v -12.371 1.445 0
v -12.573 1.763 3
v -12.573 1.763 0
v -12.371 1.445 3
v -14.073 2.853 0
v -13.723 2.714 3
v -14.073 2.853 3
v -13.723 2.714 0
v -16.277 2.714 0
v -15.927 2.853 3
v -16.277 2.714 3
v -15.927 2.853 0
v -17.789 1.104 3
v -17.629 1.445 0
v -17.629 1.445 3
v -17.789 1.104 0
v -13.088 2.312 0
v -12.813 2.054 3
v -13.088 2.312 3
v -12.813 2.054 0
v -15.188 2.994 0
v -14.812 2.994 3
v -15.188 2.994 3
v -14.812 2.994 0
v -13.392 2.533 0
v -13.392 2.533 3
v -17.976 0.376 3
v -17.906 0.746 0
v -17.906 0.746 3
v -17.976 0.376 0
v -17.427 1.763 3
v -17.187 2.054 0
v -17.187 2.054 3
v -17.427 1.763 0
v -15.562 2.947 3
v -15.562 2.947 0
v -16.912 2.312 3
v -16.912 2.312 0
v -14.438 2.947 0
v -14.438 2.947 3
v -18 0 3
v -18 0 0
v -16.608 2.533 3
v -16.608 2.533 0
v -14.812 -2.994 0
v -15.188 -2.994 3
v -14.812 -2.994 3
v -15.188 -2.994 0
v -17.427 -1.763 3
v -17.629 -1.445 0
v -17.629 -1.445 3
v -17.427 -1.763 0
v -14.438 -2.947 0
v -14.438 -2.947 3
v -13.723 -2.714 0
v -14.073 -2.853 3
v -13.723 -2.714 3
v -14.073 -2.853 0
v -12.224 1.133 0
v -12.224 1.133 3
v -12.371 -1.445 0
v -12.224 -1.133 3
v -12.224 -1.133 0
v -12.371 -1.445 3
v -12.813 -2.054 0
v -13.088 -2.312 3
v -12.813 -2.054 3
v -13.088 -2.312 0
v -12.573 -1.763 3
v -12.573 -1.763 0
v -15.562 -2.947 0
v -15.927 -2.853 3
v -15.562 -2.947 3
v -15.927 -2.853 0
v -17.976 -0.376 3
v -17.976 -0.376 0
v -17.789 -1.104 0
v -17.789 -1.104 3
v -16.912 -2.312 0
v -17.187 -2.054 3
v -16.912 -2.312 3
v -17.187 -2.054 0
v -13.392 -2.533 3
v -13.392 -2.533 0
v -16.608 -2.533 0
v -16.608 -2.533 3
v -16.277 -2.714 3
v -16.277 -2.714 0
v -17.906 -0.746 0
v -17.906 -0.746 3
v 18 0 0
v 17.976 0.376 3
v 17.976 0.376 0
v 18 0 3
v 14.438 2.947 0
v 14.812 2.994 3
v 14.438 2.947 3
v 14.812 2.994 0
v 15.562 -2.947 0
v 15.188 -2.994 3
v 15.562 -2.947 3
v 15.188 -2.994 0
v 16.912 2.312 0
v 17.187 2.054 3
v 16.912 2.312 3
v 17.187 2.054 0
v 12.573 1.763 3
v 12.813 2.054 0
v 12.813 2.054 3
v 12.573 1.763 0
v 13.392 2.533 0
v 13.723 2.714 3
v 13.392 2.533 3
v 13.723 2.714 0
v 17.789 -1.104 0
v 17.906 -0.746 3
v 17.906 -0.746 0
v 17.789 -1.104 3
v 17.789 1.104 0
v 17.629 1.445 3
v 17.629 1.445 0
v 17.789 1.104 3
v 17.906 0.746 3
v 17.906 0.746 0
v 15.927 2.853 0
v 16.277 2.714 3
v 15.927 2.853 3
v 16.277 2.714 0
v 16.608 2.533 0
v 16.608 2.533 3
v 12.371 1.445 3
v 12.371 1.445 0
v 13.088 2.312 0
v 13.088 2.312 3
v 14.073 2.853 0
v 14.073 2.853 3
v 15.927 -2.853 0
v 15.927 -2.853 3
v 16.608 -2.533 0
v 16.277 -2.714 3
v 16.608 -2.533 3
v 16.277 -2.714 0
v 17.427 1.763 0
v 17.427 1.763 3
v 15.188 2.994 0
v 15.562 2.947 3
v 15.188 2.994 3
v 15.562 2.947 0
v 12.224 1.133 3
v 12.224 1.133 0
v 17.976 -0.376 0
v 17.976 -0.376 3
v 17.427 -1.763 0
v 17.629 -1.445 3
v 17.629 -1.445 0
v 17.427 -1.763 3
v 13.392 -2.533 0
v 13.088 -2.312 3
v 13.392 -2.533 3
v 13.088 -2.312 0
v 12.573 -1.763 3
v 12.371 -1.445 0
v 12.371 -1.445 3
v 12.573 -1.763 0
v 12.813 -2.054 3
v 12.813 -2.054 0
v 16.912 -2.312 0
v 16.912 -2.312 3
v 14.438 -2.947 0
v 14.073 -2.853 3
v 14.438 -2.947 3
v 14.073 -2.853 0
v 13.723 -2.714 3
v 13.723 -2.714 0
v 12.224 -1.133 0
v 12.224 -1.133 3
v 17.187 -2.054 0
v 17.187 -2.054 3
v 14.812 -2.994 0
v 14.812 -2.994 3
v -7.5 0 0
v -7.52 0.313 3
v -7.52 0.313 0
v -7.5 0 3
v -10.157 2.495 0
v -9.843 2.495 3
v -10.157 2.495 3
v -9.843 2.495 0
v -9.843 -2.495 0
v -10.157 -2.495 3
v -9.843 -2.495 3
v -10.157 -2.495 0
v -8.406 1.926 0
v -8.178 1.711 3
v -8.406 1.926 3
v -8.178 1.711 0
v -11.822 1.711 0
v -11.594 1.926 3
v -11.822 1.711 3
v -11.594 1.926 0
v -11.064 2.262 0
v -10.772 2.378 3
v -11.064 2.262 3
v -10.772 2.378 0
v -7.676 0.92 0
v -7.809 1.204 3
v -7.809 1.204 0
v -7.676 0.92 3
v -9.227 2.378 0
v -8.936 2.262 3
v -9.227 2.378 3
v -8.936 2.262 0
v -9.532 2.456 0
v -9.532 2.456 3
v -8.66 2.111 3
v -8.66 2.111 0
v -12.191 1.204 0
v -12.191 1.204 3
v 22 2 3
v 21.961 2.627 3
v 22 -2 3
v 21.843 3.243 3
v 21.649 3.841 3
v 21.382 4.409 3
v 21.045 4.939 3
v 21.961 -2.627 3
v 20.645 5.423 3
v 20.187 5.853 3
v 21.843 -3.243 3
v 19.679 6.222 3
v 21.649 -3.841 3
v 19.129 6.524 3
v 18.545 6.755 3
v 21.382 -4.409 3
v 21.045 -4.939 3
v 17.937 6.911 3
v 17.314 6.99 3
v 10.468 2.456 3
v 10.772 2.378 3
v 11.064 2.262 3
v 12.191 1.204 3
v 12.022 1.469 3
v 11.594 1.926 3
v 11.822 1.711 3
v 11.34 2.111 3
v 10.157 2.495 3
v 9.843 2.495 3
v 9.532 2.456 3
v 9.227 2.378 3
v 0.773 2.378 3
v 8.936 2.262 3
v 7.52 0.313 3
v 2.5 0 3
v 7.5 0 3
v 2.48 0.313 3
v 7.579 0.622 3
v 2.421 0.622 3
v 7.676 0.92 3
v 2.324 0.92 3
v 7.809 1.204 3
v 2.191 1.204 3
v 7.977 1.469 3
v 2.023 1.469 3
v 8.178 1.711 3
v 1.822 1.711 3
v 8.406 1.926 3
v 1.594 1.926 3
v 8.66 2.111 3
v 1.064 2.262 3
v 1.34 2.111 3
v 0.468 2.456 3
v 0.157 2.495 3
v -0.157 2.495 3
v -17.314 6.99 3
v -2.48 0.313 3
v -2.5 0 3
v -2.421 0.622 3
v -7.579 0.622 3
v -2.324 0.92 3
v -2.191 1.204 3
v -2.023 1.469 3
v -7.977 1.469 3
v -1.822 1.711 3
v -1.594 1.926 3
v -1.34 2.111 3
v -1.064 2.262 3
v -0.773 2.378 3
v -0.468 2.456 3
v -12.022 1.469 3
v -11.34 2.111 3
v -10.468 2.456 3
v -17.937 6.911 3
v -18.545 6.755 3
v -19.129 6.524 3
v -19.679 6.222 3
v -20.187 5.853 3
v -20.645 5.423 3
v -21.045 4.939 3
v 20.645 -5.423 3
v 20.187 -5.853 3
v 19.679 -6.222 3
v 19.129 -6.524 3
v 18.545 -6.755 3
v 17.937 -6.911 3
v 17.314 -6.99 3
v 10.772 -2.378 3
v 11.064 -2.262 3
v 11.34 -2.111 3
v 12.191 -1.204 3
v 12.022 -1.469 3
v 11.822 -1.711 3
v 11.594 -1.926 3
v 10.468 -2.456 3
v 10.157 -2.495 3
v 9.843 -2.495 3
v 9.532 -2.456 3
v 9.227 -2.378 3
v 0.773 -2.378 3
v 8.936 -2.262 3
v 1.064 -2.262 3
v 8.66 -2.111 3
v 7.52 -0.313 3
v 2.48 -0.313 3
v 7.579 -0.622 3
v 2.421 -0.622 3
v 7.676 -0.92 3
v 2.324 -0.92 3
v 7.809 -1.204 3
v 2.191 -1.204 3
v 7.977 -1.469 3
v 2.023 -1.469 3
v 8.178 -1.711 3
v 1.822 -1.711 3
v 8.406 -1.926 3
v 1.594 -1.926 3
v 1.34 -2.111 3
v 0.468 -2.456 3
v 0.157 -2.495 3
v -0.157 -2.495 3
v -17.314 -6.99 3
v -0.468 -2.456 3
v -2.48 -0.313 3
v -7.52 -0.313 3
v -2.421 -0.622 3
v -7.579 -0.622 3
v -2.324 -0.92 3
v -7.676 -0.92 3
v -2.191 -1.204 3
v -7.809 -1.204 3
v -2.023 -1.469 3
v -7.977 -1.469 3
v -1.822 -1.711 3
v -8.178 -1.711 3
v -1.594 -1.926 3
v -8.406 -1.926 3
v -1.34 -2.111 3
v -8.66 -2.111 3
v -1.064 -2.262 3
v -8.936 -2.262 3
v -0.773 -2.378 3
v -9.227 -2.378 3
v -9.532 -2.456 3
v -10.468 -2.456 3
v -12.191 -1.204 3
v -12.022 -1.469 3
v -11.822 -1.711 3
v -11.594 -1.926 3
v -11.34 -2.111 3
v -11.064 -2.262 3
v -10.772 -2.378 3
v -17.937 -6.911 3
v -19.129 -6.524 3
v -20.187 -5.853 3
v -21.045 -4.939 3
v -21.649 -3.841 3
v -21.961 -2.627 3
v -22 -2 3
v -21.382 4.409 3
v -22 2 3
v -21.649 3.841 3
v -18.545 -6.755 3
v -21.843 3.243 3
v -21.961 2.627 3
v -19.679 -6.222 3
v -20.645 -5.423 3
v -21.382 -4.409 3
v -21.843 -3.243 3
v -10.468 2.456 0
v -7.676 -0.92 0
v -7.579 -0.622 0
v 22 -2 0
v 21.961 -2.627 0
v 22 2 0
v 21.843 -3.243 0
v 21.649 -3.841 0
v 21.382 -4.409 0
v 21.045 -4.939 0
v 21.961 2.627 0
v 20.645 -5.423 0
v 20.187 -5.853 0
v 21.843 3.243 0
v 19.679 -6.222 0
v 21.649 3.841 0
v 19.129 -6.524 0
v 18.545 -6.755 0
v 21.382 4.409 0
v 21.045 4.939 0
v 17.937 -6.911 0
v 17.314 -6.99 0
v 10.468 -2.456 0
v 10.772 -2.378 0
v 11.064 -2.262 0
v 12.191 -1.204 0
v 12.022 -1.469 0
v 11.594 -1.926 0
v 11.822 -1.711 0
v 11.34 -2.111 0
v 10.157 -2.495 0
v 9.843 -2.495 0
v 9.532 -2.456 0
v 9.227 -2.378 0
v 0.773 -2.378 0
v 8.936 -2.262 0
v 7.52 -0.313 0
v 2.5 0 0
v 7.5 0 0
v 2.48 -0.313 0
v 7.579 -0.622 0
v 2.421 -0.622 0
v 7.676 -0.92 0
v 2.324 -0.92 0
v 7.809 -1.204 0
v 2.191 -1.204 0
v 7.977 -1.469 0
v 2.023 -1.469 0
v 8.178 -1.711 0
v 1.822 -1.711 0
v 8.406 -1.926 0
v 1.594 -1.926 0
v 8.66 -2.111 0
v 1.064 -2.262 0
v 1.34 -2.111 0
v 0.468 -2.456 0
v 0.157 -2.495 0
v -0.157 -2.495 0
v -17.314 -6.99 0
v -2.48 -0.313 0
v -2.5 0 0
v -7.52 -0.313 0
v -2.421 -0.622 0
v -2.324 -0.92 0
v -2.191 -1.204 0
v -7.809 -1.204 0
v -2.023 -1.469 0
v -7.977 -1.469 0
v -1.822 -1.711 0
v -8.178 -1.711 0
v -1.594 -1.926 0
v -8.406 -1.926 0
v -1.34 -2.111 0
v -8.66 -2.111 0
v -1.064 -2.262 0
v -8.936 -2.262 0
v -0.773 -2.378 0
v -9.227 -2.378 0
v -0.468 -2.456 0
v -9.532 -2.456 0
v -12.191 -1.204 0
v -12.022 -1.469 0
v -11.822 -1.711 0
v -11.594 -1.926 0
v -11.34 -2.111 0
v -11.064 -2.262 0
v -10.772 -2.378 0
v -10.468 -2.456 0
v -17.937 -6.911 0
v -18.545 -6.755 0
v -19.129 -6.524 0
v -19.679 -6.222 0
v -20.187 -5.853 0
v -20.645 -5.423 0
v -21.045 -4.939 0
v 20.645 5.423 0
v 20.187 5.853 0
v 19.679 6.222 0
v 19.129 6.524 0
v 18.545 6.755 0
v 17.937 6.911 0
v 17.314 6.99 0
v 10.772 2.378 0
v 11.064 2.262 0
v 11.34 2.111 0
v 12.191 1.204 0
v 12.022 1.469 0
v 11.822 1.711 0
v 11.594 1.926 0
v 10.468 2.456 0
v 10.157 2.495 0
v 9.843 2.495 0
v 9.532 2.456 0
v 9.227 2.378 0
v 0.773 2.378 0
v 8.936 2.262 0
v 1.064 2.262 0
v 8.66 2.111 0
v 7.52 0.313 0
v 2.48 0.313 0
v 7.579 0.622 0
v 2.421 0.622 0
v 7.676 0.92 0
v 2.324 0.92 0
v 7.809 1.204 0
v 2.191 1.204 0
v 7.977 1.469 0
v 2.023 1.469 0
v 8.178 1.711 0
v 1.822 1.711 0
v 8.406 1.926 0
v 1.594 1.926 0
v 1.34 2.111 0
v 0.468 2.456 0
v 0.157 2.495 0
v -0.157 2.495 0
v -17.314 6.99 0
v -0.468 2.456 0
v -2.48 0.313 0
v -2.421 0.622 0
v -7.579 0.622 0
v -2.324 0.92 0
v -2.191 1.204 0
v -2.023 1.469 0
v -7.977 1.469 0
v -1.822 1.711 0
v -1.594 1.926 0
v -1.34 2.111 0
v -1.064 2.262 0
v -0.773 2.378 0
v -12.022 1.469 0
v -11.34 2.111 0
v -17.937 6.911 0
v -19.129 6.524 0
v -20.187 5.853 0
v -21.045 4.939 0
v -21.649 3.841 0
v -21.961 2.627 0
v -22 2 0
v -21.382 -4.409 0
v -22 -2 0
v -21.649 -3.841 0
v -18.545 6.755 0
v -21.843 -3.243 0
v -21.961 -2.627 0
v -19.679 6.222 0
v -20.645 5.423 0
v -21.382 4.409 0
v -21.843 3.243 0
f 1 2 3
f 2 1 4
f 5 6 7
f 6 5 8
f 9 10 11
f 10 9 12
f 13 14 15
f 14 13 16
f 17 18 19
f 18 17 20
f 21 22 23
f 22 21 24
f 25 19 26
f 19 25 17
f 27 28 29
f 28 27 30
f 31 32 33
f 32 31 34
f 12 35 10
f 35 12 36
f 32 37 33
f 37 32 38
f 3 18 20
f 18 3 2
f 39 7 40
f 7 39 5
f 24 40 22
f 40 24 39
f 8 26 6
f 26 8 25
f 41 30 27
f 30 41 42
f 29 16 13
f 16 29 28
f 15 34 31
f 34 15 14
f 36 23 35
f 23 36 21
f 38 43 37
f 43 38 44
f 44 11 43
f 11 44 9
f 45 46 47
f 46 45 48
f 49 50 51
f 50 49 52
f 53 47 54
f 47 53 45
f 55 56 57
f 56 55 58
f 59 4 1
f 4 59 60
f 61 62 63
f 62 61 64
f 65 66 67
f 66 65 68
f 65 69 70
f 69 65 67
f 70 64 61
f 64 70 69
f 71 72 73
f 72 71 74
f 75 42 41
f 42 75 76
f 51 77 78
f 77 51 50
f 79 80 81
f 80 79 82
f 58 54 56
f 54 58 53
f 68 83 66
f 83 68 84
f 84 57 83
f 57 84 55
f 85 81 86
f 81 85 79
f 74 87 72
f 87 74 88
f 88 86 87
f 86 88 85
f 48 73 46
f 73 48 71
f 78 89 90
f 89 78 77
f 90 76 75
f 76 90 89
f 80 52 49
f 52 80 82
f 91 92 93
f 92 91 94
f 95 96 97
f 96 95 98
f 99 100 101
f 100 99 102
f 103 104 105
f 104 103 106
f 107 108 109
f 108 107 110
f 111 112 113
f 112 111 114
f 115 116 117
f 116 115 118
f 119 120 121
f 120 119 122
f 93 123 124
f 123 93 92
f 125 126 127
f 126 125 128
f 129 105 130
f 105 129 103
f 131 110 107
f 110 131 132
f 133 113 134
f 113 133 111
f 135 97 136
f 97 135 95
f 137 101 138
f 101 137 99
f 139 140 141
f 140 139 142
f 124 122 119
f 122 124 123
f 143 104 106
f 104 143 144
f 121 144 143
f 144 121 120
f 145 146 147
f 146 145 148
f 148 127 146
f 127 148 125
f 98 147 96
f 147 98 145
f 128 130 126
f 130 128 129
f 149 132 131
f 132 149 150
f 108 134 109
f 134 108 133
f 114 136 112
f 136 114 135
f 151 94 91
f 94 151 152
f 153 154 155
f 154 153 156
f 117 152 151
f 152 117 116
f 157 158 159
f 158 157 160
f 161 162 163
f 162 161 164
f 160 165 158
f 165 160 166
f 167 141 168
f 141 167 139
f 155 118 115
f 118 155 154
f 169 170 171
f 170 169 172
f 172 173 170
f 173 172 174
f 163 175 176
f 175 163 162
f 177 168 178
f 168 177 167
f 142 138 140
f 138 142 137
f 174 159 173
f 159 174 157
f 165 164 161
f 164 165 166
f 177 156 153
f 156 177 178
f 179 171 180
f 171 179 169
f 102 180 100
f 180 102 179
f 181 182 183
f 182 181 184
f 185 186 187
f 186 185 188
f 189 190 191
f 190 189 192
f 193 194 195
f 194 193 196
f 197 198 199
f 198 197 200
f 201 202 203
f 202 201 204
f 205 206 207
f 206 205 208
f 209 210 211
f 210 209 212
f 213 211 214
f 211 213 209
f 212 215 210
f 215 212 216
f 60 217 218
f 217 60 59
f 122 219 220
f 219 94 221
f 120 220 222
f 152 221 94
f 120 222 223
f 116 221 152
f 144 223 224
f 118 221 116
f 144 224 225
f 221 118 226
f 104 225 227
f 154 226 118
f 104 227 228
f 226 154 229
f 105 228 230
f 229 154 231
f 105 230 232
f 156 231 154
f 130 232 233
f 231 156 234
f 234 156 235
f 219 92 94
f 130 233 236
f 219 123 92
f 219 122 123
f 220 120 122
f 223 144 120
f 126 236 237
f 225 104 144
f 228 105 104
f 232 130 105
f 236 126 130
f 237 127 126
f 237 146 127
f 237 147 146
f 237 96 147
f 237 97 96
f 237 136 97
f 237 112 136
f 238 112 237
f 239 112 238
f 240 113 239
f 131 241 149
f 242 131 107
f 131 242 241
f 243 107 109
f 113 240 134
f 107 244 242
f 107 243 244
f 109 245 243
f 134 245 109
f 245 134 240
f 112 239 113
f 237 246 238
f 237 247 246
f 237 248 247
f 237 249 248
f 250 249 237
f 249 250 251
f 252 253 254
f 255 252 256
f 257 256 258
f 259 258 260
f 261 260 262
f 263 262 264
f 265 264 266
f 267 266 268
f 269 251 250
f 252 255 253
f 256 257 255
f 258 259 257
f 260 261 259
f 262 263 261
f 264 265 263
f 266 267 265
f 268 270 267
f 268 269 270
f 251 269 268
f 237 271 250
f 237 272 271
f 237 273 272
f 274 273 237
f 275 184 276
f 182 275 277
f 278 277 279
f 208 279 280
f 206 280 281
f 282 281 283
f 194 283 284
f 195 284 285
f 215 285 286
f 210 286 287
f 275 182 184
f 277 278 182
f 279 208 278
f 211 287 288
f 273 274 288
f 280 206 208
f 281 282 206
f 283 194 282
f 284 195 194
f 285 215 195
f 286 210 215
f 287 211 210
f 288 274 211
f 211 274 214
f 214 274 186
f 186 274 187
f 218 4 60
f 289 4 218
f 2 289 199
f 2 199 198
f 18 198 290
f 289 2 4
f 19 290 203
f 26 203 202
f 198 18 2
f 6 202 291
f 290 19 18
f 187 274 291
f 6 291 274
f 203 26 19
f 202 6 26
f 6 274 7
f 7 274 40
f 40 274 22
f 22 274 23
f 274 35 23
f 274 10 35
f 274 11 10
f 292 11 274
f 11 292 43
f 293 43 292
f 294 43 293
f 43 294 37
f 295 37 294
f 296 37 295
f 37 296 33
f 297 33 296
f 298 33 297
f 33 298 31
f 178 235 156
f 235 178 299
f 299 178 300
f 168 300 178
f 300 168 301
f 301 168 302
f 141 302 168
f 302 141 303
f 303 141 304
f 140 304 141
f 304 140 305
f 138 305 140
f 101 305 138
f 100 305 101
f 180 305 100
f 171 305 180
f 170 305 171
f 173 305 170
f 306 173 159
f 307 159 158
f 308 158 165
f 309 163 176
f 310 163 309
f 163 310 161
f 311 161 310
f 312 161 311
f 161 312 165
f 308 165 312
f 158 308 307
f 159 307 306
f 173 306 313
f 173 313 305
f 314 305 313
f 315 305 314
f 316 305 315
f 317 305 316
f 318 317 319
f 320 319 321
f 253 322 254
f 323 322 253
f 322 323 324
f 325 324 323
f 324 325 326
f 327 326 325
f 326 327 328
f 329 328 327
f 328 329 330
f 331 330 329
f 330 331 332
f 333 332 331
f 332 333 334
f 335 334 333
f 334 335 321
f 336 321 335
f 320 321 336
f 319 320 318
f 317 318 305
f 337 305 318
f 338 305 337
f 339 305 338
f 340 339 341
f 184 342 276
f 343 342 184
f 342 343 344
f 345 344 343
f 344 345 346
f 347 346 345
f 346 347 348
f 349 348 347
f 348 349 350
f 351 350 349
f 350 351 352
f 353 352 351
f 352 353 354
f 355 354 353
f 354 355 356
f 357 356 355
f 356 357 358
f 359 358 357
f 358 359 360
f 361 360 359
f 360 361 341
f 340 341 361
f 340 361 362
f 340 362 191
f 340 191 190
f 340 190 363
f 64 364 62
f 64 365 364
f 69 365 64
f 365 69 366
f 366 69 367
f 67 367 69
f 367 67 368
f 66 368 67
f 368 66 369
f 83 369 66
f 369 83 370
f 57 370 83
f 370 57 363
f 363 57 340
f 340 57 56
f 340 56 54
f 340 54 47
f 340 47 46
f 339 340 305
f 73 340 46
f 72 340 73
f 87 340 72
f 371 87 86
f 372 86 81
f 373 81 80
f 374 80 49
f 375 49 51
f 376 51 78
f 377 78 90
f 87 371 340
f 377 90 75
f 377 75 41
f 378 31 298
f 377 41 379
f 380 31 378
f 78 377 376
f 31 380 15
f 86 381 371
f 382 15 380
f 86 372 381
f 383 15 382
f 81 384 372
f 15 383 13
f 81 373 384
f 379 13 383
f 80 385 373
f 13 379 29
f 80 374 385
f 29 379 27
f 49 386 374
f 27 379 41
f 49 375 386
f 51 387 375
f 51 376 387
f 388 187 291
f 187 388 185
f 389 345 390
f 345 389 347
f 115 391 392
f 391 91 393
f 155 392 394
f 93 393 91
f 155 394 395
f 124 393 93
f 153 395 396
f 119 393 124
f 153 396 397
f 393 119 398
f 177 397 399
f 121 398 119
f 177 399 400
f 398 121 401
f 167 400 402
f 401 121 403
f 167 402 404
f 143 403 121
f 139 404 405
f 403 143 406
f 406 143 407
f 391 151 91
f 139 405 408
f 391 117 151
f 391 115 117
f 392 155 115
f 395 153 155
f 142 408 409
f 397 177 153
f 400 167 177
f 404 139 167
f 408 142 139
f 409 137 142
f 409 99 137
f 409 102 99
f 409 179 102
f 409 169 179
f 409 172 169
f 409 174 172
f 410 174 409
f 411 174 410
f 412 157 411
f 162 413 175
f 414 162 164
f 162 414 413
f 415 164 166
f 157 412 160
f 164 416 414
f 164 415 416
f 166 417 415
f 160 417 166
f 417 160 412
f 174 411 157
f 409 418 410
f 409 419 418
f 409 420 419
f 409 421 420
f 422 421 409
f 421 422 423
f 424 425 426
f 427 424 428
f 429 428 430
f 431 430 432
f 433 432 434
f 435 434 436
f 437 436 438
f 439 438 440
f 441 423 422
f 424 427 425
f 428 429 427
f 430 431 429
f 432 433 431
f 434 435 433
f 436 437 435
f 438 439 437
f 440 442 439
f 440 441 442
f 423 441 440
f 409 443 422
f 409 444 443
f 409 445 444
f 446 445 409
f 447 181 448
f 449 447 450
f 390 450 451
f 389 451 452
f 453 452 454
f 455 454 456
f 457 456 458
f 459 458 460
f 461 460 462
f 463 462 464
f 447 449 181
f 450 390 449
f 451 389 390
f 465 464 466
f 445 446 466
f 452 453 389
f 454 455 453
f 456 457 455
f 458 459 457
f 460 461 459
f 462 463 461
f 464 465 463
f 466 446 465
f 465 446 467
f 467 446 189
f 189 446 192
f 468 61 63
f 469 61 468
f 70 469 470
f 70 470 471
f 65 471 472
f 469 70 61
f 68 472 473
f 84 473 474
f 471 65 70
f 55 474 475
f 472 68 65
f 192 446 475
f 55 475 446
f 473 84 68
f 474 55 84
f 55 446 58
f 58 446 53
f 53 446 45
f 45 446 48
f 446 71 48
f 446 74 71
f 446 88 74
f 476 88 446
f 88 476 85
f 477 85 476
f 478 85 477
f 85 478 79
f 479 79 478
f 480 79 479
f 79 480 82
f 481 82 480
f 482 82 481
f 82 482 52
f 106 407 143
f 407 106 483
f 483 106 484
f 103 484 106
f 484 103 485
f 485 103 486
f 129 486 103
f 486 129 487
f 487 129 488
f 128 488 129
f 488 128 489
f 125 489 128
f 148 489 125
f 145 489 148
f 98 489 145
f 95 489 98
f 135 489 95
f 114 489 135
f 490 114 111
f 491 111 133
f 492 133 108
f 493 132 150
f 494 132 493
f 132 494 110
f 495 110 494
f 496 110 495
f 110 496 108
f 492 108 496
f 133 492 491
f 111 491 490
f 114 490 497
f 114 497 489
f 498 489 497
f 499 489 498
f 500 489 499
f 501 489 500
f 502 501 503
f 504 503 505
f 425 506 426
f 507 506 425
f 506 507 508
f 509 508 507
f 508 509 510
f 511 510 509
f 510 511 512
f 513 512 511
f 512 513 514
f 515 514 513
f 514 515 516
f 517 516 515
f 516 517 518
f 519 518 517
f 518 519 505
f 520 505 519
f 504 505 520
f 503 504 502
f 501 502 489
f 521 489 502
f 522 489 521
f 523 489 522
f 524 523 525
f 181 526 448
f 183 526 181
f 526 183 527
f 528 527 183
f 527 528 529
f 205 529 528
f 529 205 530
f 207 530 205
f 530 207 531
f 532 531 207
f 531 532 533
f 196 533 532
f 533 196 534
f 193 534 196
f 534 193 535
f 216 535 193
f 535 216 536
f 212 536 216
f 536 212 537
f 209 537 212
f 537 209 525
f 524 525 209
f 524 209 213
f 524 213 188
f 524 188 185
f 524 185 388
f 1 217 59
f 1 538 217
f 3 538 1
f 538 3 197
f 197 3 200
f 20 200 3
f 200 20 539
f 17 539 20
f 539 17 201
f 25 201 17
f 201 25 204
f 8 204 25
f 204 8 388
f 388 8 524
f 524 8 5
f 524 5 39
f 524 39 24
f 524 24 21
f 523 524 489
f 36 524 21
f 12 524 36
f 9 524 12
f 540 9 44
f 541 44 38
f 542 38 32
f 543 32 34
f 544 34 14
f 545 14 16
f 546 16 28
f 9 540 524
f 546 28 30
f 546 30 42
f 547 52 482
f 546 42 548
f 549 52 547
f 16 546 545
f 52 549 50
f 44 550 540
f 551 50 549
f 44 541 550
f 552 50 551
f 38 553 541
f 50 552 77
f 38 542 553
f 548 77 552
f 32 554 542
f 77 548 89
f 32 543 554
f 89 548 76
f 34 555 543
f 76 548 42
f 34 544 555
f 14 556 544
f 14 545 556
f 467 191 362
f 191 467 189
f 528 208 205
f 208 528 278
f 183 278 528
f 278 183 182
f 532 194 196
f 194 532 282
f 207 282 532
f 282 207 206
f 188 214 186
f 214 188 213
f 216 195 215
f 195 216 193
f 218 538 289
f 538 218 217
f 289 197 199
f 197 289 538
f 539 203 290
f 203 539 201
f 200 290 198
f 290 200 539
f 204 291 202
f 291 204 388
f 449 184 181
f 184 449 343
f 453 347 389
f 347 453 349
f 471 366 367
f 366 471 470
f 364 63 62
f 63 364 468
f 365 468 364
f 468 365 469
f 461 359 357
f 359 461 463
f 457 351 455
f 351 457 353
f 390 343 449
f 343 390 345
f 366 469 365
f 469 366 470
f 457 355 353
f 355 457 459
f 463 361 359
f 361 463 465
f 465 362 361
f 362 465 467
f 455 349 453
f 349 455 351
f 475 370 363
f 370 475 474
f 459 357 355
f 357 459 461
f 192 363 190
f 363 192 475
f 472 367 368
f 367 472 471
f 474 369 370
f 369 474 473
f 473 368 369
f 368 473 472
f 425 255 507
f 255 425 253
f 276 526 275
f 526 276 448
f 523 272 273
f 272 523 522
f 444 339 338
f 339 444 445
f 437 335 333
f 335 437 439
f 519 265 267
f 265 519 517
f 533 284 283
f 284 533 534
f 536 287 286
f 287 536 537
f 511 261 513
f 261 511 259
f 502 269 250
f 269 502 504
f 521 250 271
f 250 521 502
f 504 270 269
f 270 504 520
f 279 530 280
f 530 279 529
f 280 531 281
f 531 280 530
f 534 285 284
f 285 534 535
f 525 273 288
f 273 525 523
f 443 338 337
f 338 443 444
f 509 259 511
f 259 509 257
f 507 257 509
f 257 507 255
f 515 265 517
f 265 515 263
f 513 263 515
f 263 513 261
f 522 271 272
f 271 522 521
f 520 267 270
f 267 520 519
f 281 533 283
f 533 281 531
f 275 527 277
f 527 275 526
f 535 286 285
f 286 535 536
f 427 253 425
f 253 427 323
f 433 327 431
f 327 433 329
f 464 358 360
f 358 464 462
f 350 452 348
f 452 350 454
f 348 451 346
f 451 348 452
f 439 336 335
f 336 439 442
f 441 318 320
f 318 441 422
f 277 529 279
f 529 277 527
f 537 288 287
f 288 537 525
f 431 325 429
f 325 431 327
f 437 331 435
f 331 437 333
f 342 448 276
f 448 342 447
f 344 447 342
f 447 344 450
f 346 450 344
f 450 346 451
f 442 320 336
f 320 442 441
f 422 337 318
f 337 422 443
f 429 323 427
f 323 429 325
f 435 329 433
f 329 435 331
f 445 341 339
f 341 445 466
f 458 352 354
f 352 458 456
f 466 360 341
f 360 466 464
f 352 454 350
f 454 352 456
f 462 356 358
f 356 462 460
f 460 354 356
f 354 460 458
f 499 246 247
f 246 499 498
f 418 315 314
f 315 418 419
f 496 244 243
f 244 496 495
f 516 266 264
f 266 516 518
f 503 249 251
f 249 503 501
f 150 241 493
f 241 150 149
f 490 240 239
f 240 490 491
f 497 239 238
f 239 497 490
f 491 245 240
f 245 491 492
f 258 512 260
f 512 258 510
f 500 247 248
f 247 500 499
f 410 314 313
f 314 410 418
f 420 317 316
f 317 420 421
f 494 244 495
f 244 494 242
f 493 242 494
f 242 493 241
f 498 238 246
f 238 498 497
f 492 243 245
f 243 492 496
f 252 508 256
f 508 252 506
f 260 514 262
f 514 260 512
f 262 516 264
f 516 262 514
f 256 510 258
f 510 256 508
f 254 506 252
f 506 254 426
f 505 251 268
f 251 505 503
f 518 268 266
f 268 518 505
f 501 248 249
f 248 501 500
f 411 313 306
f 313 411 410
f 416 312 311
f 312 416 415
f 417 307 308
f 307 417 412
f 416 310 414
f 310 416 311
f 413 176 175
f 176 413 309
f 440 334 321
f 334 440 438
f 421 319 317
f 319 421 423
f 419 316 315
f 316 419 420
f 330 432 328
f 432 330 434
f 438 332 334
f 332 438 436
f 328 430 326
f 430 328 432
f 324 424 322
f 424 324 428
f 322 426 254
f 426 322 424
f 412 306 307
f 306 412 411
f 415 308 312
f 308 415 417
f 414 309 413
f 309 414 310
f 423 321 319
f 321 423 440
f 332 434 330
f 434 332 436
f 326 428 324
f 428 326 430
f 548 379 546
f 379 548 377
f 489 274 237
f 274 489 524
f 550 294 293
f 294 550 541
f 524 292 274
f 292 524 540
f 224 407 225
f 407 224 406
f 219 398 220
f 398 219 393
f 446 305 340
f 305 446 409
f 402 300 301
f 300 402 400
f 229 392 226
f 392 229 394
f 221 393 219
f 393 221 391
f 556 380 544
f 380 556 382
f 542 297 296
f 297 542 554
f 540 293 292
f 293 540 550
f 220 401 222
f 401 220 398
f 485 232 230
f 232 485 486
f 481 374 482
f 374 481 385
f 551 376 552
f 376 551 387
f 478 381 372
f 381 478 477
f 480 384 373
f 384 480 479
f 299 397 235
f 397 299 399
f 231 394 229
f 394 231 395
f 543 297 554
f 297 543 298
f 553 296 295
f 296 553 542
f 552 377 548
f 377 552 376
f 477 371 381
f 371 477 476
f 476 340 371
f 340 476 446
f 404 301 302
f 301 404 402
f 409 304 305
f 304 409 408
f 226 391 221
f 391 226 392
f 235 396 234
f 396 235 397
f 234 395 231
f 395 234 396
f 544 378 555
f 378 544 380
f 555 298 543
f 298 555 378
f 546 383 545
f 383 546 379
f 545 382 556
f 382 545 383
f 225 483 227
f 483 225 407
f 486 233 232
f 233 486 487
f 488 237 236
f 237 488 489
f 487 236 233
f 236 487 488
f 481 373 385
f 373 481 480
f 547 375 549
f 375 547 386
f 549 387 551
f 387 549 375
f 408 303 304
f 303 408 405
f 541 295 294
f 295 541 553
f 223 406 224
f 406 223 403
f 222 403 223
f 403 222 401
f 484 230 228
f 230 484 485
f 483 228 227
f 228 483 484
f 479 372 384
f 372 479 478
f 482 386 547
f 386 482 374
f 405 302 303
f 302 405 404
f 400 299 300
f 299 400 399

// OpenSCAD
$fn = 50;


difference() {
	union() {
		hull() {
			translate(v = [-17.0000000000, 2.0000000000, 0]) {
				cylinder(h = 3, r = 5);
			}
			translate(v = [17.0000000000, 2.0000000000, 0]) {
				cylinder(h = 3, r = 5);
			}
			translate(v = [-17.0000000000, -2.0000000000, 0]) {
				cylinder(h = 3, r = 5);
			}
			translate(v = [17.0000000000, -2.0000000000, 0]) {
				cylinder(h = 3, r = 5);
			}
		}
	}
	union() {
		#translate(v = [-15.0000000000, 0.0000000000, -100.0000000000]) {
			cylinder(h = 200, r = 3.0000000000);
		}
		#translate(v = [-15.0000000000, 0.0000000000, -100.0000000000]) {
			cylinder(h = 200, r = 3.0000000000);
		}
		#translate(v = [15.0000000000, 0.0000000000, -100.0000000000]) {
			cylinder(h = 200, r = 3.0000000000);
		}
		#translate(v = [15.0000000000, 0.0000000000, -100.0000000000]) {
			cylinder(h = 200, r = 3.0000000000);
		}
		#translate(v = [-10.0000000000, 0, 0]) {
			cylinder(h = 3, r = 2.5000000000);
		}
		#cylinder(h = 3, r = 2.5000000000);
		#translate(v = [10.0000000000, 0, 0]) {
			cylinder(h = 3, r = 2.5000000000);
		}
	}
}
